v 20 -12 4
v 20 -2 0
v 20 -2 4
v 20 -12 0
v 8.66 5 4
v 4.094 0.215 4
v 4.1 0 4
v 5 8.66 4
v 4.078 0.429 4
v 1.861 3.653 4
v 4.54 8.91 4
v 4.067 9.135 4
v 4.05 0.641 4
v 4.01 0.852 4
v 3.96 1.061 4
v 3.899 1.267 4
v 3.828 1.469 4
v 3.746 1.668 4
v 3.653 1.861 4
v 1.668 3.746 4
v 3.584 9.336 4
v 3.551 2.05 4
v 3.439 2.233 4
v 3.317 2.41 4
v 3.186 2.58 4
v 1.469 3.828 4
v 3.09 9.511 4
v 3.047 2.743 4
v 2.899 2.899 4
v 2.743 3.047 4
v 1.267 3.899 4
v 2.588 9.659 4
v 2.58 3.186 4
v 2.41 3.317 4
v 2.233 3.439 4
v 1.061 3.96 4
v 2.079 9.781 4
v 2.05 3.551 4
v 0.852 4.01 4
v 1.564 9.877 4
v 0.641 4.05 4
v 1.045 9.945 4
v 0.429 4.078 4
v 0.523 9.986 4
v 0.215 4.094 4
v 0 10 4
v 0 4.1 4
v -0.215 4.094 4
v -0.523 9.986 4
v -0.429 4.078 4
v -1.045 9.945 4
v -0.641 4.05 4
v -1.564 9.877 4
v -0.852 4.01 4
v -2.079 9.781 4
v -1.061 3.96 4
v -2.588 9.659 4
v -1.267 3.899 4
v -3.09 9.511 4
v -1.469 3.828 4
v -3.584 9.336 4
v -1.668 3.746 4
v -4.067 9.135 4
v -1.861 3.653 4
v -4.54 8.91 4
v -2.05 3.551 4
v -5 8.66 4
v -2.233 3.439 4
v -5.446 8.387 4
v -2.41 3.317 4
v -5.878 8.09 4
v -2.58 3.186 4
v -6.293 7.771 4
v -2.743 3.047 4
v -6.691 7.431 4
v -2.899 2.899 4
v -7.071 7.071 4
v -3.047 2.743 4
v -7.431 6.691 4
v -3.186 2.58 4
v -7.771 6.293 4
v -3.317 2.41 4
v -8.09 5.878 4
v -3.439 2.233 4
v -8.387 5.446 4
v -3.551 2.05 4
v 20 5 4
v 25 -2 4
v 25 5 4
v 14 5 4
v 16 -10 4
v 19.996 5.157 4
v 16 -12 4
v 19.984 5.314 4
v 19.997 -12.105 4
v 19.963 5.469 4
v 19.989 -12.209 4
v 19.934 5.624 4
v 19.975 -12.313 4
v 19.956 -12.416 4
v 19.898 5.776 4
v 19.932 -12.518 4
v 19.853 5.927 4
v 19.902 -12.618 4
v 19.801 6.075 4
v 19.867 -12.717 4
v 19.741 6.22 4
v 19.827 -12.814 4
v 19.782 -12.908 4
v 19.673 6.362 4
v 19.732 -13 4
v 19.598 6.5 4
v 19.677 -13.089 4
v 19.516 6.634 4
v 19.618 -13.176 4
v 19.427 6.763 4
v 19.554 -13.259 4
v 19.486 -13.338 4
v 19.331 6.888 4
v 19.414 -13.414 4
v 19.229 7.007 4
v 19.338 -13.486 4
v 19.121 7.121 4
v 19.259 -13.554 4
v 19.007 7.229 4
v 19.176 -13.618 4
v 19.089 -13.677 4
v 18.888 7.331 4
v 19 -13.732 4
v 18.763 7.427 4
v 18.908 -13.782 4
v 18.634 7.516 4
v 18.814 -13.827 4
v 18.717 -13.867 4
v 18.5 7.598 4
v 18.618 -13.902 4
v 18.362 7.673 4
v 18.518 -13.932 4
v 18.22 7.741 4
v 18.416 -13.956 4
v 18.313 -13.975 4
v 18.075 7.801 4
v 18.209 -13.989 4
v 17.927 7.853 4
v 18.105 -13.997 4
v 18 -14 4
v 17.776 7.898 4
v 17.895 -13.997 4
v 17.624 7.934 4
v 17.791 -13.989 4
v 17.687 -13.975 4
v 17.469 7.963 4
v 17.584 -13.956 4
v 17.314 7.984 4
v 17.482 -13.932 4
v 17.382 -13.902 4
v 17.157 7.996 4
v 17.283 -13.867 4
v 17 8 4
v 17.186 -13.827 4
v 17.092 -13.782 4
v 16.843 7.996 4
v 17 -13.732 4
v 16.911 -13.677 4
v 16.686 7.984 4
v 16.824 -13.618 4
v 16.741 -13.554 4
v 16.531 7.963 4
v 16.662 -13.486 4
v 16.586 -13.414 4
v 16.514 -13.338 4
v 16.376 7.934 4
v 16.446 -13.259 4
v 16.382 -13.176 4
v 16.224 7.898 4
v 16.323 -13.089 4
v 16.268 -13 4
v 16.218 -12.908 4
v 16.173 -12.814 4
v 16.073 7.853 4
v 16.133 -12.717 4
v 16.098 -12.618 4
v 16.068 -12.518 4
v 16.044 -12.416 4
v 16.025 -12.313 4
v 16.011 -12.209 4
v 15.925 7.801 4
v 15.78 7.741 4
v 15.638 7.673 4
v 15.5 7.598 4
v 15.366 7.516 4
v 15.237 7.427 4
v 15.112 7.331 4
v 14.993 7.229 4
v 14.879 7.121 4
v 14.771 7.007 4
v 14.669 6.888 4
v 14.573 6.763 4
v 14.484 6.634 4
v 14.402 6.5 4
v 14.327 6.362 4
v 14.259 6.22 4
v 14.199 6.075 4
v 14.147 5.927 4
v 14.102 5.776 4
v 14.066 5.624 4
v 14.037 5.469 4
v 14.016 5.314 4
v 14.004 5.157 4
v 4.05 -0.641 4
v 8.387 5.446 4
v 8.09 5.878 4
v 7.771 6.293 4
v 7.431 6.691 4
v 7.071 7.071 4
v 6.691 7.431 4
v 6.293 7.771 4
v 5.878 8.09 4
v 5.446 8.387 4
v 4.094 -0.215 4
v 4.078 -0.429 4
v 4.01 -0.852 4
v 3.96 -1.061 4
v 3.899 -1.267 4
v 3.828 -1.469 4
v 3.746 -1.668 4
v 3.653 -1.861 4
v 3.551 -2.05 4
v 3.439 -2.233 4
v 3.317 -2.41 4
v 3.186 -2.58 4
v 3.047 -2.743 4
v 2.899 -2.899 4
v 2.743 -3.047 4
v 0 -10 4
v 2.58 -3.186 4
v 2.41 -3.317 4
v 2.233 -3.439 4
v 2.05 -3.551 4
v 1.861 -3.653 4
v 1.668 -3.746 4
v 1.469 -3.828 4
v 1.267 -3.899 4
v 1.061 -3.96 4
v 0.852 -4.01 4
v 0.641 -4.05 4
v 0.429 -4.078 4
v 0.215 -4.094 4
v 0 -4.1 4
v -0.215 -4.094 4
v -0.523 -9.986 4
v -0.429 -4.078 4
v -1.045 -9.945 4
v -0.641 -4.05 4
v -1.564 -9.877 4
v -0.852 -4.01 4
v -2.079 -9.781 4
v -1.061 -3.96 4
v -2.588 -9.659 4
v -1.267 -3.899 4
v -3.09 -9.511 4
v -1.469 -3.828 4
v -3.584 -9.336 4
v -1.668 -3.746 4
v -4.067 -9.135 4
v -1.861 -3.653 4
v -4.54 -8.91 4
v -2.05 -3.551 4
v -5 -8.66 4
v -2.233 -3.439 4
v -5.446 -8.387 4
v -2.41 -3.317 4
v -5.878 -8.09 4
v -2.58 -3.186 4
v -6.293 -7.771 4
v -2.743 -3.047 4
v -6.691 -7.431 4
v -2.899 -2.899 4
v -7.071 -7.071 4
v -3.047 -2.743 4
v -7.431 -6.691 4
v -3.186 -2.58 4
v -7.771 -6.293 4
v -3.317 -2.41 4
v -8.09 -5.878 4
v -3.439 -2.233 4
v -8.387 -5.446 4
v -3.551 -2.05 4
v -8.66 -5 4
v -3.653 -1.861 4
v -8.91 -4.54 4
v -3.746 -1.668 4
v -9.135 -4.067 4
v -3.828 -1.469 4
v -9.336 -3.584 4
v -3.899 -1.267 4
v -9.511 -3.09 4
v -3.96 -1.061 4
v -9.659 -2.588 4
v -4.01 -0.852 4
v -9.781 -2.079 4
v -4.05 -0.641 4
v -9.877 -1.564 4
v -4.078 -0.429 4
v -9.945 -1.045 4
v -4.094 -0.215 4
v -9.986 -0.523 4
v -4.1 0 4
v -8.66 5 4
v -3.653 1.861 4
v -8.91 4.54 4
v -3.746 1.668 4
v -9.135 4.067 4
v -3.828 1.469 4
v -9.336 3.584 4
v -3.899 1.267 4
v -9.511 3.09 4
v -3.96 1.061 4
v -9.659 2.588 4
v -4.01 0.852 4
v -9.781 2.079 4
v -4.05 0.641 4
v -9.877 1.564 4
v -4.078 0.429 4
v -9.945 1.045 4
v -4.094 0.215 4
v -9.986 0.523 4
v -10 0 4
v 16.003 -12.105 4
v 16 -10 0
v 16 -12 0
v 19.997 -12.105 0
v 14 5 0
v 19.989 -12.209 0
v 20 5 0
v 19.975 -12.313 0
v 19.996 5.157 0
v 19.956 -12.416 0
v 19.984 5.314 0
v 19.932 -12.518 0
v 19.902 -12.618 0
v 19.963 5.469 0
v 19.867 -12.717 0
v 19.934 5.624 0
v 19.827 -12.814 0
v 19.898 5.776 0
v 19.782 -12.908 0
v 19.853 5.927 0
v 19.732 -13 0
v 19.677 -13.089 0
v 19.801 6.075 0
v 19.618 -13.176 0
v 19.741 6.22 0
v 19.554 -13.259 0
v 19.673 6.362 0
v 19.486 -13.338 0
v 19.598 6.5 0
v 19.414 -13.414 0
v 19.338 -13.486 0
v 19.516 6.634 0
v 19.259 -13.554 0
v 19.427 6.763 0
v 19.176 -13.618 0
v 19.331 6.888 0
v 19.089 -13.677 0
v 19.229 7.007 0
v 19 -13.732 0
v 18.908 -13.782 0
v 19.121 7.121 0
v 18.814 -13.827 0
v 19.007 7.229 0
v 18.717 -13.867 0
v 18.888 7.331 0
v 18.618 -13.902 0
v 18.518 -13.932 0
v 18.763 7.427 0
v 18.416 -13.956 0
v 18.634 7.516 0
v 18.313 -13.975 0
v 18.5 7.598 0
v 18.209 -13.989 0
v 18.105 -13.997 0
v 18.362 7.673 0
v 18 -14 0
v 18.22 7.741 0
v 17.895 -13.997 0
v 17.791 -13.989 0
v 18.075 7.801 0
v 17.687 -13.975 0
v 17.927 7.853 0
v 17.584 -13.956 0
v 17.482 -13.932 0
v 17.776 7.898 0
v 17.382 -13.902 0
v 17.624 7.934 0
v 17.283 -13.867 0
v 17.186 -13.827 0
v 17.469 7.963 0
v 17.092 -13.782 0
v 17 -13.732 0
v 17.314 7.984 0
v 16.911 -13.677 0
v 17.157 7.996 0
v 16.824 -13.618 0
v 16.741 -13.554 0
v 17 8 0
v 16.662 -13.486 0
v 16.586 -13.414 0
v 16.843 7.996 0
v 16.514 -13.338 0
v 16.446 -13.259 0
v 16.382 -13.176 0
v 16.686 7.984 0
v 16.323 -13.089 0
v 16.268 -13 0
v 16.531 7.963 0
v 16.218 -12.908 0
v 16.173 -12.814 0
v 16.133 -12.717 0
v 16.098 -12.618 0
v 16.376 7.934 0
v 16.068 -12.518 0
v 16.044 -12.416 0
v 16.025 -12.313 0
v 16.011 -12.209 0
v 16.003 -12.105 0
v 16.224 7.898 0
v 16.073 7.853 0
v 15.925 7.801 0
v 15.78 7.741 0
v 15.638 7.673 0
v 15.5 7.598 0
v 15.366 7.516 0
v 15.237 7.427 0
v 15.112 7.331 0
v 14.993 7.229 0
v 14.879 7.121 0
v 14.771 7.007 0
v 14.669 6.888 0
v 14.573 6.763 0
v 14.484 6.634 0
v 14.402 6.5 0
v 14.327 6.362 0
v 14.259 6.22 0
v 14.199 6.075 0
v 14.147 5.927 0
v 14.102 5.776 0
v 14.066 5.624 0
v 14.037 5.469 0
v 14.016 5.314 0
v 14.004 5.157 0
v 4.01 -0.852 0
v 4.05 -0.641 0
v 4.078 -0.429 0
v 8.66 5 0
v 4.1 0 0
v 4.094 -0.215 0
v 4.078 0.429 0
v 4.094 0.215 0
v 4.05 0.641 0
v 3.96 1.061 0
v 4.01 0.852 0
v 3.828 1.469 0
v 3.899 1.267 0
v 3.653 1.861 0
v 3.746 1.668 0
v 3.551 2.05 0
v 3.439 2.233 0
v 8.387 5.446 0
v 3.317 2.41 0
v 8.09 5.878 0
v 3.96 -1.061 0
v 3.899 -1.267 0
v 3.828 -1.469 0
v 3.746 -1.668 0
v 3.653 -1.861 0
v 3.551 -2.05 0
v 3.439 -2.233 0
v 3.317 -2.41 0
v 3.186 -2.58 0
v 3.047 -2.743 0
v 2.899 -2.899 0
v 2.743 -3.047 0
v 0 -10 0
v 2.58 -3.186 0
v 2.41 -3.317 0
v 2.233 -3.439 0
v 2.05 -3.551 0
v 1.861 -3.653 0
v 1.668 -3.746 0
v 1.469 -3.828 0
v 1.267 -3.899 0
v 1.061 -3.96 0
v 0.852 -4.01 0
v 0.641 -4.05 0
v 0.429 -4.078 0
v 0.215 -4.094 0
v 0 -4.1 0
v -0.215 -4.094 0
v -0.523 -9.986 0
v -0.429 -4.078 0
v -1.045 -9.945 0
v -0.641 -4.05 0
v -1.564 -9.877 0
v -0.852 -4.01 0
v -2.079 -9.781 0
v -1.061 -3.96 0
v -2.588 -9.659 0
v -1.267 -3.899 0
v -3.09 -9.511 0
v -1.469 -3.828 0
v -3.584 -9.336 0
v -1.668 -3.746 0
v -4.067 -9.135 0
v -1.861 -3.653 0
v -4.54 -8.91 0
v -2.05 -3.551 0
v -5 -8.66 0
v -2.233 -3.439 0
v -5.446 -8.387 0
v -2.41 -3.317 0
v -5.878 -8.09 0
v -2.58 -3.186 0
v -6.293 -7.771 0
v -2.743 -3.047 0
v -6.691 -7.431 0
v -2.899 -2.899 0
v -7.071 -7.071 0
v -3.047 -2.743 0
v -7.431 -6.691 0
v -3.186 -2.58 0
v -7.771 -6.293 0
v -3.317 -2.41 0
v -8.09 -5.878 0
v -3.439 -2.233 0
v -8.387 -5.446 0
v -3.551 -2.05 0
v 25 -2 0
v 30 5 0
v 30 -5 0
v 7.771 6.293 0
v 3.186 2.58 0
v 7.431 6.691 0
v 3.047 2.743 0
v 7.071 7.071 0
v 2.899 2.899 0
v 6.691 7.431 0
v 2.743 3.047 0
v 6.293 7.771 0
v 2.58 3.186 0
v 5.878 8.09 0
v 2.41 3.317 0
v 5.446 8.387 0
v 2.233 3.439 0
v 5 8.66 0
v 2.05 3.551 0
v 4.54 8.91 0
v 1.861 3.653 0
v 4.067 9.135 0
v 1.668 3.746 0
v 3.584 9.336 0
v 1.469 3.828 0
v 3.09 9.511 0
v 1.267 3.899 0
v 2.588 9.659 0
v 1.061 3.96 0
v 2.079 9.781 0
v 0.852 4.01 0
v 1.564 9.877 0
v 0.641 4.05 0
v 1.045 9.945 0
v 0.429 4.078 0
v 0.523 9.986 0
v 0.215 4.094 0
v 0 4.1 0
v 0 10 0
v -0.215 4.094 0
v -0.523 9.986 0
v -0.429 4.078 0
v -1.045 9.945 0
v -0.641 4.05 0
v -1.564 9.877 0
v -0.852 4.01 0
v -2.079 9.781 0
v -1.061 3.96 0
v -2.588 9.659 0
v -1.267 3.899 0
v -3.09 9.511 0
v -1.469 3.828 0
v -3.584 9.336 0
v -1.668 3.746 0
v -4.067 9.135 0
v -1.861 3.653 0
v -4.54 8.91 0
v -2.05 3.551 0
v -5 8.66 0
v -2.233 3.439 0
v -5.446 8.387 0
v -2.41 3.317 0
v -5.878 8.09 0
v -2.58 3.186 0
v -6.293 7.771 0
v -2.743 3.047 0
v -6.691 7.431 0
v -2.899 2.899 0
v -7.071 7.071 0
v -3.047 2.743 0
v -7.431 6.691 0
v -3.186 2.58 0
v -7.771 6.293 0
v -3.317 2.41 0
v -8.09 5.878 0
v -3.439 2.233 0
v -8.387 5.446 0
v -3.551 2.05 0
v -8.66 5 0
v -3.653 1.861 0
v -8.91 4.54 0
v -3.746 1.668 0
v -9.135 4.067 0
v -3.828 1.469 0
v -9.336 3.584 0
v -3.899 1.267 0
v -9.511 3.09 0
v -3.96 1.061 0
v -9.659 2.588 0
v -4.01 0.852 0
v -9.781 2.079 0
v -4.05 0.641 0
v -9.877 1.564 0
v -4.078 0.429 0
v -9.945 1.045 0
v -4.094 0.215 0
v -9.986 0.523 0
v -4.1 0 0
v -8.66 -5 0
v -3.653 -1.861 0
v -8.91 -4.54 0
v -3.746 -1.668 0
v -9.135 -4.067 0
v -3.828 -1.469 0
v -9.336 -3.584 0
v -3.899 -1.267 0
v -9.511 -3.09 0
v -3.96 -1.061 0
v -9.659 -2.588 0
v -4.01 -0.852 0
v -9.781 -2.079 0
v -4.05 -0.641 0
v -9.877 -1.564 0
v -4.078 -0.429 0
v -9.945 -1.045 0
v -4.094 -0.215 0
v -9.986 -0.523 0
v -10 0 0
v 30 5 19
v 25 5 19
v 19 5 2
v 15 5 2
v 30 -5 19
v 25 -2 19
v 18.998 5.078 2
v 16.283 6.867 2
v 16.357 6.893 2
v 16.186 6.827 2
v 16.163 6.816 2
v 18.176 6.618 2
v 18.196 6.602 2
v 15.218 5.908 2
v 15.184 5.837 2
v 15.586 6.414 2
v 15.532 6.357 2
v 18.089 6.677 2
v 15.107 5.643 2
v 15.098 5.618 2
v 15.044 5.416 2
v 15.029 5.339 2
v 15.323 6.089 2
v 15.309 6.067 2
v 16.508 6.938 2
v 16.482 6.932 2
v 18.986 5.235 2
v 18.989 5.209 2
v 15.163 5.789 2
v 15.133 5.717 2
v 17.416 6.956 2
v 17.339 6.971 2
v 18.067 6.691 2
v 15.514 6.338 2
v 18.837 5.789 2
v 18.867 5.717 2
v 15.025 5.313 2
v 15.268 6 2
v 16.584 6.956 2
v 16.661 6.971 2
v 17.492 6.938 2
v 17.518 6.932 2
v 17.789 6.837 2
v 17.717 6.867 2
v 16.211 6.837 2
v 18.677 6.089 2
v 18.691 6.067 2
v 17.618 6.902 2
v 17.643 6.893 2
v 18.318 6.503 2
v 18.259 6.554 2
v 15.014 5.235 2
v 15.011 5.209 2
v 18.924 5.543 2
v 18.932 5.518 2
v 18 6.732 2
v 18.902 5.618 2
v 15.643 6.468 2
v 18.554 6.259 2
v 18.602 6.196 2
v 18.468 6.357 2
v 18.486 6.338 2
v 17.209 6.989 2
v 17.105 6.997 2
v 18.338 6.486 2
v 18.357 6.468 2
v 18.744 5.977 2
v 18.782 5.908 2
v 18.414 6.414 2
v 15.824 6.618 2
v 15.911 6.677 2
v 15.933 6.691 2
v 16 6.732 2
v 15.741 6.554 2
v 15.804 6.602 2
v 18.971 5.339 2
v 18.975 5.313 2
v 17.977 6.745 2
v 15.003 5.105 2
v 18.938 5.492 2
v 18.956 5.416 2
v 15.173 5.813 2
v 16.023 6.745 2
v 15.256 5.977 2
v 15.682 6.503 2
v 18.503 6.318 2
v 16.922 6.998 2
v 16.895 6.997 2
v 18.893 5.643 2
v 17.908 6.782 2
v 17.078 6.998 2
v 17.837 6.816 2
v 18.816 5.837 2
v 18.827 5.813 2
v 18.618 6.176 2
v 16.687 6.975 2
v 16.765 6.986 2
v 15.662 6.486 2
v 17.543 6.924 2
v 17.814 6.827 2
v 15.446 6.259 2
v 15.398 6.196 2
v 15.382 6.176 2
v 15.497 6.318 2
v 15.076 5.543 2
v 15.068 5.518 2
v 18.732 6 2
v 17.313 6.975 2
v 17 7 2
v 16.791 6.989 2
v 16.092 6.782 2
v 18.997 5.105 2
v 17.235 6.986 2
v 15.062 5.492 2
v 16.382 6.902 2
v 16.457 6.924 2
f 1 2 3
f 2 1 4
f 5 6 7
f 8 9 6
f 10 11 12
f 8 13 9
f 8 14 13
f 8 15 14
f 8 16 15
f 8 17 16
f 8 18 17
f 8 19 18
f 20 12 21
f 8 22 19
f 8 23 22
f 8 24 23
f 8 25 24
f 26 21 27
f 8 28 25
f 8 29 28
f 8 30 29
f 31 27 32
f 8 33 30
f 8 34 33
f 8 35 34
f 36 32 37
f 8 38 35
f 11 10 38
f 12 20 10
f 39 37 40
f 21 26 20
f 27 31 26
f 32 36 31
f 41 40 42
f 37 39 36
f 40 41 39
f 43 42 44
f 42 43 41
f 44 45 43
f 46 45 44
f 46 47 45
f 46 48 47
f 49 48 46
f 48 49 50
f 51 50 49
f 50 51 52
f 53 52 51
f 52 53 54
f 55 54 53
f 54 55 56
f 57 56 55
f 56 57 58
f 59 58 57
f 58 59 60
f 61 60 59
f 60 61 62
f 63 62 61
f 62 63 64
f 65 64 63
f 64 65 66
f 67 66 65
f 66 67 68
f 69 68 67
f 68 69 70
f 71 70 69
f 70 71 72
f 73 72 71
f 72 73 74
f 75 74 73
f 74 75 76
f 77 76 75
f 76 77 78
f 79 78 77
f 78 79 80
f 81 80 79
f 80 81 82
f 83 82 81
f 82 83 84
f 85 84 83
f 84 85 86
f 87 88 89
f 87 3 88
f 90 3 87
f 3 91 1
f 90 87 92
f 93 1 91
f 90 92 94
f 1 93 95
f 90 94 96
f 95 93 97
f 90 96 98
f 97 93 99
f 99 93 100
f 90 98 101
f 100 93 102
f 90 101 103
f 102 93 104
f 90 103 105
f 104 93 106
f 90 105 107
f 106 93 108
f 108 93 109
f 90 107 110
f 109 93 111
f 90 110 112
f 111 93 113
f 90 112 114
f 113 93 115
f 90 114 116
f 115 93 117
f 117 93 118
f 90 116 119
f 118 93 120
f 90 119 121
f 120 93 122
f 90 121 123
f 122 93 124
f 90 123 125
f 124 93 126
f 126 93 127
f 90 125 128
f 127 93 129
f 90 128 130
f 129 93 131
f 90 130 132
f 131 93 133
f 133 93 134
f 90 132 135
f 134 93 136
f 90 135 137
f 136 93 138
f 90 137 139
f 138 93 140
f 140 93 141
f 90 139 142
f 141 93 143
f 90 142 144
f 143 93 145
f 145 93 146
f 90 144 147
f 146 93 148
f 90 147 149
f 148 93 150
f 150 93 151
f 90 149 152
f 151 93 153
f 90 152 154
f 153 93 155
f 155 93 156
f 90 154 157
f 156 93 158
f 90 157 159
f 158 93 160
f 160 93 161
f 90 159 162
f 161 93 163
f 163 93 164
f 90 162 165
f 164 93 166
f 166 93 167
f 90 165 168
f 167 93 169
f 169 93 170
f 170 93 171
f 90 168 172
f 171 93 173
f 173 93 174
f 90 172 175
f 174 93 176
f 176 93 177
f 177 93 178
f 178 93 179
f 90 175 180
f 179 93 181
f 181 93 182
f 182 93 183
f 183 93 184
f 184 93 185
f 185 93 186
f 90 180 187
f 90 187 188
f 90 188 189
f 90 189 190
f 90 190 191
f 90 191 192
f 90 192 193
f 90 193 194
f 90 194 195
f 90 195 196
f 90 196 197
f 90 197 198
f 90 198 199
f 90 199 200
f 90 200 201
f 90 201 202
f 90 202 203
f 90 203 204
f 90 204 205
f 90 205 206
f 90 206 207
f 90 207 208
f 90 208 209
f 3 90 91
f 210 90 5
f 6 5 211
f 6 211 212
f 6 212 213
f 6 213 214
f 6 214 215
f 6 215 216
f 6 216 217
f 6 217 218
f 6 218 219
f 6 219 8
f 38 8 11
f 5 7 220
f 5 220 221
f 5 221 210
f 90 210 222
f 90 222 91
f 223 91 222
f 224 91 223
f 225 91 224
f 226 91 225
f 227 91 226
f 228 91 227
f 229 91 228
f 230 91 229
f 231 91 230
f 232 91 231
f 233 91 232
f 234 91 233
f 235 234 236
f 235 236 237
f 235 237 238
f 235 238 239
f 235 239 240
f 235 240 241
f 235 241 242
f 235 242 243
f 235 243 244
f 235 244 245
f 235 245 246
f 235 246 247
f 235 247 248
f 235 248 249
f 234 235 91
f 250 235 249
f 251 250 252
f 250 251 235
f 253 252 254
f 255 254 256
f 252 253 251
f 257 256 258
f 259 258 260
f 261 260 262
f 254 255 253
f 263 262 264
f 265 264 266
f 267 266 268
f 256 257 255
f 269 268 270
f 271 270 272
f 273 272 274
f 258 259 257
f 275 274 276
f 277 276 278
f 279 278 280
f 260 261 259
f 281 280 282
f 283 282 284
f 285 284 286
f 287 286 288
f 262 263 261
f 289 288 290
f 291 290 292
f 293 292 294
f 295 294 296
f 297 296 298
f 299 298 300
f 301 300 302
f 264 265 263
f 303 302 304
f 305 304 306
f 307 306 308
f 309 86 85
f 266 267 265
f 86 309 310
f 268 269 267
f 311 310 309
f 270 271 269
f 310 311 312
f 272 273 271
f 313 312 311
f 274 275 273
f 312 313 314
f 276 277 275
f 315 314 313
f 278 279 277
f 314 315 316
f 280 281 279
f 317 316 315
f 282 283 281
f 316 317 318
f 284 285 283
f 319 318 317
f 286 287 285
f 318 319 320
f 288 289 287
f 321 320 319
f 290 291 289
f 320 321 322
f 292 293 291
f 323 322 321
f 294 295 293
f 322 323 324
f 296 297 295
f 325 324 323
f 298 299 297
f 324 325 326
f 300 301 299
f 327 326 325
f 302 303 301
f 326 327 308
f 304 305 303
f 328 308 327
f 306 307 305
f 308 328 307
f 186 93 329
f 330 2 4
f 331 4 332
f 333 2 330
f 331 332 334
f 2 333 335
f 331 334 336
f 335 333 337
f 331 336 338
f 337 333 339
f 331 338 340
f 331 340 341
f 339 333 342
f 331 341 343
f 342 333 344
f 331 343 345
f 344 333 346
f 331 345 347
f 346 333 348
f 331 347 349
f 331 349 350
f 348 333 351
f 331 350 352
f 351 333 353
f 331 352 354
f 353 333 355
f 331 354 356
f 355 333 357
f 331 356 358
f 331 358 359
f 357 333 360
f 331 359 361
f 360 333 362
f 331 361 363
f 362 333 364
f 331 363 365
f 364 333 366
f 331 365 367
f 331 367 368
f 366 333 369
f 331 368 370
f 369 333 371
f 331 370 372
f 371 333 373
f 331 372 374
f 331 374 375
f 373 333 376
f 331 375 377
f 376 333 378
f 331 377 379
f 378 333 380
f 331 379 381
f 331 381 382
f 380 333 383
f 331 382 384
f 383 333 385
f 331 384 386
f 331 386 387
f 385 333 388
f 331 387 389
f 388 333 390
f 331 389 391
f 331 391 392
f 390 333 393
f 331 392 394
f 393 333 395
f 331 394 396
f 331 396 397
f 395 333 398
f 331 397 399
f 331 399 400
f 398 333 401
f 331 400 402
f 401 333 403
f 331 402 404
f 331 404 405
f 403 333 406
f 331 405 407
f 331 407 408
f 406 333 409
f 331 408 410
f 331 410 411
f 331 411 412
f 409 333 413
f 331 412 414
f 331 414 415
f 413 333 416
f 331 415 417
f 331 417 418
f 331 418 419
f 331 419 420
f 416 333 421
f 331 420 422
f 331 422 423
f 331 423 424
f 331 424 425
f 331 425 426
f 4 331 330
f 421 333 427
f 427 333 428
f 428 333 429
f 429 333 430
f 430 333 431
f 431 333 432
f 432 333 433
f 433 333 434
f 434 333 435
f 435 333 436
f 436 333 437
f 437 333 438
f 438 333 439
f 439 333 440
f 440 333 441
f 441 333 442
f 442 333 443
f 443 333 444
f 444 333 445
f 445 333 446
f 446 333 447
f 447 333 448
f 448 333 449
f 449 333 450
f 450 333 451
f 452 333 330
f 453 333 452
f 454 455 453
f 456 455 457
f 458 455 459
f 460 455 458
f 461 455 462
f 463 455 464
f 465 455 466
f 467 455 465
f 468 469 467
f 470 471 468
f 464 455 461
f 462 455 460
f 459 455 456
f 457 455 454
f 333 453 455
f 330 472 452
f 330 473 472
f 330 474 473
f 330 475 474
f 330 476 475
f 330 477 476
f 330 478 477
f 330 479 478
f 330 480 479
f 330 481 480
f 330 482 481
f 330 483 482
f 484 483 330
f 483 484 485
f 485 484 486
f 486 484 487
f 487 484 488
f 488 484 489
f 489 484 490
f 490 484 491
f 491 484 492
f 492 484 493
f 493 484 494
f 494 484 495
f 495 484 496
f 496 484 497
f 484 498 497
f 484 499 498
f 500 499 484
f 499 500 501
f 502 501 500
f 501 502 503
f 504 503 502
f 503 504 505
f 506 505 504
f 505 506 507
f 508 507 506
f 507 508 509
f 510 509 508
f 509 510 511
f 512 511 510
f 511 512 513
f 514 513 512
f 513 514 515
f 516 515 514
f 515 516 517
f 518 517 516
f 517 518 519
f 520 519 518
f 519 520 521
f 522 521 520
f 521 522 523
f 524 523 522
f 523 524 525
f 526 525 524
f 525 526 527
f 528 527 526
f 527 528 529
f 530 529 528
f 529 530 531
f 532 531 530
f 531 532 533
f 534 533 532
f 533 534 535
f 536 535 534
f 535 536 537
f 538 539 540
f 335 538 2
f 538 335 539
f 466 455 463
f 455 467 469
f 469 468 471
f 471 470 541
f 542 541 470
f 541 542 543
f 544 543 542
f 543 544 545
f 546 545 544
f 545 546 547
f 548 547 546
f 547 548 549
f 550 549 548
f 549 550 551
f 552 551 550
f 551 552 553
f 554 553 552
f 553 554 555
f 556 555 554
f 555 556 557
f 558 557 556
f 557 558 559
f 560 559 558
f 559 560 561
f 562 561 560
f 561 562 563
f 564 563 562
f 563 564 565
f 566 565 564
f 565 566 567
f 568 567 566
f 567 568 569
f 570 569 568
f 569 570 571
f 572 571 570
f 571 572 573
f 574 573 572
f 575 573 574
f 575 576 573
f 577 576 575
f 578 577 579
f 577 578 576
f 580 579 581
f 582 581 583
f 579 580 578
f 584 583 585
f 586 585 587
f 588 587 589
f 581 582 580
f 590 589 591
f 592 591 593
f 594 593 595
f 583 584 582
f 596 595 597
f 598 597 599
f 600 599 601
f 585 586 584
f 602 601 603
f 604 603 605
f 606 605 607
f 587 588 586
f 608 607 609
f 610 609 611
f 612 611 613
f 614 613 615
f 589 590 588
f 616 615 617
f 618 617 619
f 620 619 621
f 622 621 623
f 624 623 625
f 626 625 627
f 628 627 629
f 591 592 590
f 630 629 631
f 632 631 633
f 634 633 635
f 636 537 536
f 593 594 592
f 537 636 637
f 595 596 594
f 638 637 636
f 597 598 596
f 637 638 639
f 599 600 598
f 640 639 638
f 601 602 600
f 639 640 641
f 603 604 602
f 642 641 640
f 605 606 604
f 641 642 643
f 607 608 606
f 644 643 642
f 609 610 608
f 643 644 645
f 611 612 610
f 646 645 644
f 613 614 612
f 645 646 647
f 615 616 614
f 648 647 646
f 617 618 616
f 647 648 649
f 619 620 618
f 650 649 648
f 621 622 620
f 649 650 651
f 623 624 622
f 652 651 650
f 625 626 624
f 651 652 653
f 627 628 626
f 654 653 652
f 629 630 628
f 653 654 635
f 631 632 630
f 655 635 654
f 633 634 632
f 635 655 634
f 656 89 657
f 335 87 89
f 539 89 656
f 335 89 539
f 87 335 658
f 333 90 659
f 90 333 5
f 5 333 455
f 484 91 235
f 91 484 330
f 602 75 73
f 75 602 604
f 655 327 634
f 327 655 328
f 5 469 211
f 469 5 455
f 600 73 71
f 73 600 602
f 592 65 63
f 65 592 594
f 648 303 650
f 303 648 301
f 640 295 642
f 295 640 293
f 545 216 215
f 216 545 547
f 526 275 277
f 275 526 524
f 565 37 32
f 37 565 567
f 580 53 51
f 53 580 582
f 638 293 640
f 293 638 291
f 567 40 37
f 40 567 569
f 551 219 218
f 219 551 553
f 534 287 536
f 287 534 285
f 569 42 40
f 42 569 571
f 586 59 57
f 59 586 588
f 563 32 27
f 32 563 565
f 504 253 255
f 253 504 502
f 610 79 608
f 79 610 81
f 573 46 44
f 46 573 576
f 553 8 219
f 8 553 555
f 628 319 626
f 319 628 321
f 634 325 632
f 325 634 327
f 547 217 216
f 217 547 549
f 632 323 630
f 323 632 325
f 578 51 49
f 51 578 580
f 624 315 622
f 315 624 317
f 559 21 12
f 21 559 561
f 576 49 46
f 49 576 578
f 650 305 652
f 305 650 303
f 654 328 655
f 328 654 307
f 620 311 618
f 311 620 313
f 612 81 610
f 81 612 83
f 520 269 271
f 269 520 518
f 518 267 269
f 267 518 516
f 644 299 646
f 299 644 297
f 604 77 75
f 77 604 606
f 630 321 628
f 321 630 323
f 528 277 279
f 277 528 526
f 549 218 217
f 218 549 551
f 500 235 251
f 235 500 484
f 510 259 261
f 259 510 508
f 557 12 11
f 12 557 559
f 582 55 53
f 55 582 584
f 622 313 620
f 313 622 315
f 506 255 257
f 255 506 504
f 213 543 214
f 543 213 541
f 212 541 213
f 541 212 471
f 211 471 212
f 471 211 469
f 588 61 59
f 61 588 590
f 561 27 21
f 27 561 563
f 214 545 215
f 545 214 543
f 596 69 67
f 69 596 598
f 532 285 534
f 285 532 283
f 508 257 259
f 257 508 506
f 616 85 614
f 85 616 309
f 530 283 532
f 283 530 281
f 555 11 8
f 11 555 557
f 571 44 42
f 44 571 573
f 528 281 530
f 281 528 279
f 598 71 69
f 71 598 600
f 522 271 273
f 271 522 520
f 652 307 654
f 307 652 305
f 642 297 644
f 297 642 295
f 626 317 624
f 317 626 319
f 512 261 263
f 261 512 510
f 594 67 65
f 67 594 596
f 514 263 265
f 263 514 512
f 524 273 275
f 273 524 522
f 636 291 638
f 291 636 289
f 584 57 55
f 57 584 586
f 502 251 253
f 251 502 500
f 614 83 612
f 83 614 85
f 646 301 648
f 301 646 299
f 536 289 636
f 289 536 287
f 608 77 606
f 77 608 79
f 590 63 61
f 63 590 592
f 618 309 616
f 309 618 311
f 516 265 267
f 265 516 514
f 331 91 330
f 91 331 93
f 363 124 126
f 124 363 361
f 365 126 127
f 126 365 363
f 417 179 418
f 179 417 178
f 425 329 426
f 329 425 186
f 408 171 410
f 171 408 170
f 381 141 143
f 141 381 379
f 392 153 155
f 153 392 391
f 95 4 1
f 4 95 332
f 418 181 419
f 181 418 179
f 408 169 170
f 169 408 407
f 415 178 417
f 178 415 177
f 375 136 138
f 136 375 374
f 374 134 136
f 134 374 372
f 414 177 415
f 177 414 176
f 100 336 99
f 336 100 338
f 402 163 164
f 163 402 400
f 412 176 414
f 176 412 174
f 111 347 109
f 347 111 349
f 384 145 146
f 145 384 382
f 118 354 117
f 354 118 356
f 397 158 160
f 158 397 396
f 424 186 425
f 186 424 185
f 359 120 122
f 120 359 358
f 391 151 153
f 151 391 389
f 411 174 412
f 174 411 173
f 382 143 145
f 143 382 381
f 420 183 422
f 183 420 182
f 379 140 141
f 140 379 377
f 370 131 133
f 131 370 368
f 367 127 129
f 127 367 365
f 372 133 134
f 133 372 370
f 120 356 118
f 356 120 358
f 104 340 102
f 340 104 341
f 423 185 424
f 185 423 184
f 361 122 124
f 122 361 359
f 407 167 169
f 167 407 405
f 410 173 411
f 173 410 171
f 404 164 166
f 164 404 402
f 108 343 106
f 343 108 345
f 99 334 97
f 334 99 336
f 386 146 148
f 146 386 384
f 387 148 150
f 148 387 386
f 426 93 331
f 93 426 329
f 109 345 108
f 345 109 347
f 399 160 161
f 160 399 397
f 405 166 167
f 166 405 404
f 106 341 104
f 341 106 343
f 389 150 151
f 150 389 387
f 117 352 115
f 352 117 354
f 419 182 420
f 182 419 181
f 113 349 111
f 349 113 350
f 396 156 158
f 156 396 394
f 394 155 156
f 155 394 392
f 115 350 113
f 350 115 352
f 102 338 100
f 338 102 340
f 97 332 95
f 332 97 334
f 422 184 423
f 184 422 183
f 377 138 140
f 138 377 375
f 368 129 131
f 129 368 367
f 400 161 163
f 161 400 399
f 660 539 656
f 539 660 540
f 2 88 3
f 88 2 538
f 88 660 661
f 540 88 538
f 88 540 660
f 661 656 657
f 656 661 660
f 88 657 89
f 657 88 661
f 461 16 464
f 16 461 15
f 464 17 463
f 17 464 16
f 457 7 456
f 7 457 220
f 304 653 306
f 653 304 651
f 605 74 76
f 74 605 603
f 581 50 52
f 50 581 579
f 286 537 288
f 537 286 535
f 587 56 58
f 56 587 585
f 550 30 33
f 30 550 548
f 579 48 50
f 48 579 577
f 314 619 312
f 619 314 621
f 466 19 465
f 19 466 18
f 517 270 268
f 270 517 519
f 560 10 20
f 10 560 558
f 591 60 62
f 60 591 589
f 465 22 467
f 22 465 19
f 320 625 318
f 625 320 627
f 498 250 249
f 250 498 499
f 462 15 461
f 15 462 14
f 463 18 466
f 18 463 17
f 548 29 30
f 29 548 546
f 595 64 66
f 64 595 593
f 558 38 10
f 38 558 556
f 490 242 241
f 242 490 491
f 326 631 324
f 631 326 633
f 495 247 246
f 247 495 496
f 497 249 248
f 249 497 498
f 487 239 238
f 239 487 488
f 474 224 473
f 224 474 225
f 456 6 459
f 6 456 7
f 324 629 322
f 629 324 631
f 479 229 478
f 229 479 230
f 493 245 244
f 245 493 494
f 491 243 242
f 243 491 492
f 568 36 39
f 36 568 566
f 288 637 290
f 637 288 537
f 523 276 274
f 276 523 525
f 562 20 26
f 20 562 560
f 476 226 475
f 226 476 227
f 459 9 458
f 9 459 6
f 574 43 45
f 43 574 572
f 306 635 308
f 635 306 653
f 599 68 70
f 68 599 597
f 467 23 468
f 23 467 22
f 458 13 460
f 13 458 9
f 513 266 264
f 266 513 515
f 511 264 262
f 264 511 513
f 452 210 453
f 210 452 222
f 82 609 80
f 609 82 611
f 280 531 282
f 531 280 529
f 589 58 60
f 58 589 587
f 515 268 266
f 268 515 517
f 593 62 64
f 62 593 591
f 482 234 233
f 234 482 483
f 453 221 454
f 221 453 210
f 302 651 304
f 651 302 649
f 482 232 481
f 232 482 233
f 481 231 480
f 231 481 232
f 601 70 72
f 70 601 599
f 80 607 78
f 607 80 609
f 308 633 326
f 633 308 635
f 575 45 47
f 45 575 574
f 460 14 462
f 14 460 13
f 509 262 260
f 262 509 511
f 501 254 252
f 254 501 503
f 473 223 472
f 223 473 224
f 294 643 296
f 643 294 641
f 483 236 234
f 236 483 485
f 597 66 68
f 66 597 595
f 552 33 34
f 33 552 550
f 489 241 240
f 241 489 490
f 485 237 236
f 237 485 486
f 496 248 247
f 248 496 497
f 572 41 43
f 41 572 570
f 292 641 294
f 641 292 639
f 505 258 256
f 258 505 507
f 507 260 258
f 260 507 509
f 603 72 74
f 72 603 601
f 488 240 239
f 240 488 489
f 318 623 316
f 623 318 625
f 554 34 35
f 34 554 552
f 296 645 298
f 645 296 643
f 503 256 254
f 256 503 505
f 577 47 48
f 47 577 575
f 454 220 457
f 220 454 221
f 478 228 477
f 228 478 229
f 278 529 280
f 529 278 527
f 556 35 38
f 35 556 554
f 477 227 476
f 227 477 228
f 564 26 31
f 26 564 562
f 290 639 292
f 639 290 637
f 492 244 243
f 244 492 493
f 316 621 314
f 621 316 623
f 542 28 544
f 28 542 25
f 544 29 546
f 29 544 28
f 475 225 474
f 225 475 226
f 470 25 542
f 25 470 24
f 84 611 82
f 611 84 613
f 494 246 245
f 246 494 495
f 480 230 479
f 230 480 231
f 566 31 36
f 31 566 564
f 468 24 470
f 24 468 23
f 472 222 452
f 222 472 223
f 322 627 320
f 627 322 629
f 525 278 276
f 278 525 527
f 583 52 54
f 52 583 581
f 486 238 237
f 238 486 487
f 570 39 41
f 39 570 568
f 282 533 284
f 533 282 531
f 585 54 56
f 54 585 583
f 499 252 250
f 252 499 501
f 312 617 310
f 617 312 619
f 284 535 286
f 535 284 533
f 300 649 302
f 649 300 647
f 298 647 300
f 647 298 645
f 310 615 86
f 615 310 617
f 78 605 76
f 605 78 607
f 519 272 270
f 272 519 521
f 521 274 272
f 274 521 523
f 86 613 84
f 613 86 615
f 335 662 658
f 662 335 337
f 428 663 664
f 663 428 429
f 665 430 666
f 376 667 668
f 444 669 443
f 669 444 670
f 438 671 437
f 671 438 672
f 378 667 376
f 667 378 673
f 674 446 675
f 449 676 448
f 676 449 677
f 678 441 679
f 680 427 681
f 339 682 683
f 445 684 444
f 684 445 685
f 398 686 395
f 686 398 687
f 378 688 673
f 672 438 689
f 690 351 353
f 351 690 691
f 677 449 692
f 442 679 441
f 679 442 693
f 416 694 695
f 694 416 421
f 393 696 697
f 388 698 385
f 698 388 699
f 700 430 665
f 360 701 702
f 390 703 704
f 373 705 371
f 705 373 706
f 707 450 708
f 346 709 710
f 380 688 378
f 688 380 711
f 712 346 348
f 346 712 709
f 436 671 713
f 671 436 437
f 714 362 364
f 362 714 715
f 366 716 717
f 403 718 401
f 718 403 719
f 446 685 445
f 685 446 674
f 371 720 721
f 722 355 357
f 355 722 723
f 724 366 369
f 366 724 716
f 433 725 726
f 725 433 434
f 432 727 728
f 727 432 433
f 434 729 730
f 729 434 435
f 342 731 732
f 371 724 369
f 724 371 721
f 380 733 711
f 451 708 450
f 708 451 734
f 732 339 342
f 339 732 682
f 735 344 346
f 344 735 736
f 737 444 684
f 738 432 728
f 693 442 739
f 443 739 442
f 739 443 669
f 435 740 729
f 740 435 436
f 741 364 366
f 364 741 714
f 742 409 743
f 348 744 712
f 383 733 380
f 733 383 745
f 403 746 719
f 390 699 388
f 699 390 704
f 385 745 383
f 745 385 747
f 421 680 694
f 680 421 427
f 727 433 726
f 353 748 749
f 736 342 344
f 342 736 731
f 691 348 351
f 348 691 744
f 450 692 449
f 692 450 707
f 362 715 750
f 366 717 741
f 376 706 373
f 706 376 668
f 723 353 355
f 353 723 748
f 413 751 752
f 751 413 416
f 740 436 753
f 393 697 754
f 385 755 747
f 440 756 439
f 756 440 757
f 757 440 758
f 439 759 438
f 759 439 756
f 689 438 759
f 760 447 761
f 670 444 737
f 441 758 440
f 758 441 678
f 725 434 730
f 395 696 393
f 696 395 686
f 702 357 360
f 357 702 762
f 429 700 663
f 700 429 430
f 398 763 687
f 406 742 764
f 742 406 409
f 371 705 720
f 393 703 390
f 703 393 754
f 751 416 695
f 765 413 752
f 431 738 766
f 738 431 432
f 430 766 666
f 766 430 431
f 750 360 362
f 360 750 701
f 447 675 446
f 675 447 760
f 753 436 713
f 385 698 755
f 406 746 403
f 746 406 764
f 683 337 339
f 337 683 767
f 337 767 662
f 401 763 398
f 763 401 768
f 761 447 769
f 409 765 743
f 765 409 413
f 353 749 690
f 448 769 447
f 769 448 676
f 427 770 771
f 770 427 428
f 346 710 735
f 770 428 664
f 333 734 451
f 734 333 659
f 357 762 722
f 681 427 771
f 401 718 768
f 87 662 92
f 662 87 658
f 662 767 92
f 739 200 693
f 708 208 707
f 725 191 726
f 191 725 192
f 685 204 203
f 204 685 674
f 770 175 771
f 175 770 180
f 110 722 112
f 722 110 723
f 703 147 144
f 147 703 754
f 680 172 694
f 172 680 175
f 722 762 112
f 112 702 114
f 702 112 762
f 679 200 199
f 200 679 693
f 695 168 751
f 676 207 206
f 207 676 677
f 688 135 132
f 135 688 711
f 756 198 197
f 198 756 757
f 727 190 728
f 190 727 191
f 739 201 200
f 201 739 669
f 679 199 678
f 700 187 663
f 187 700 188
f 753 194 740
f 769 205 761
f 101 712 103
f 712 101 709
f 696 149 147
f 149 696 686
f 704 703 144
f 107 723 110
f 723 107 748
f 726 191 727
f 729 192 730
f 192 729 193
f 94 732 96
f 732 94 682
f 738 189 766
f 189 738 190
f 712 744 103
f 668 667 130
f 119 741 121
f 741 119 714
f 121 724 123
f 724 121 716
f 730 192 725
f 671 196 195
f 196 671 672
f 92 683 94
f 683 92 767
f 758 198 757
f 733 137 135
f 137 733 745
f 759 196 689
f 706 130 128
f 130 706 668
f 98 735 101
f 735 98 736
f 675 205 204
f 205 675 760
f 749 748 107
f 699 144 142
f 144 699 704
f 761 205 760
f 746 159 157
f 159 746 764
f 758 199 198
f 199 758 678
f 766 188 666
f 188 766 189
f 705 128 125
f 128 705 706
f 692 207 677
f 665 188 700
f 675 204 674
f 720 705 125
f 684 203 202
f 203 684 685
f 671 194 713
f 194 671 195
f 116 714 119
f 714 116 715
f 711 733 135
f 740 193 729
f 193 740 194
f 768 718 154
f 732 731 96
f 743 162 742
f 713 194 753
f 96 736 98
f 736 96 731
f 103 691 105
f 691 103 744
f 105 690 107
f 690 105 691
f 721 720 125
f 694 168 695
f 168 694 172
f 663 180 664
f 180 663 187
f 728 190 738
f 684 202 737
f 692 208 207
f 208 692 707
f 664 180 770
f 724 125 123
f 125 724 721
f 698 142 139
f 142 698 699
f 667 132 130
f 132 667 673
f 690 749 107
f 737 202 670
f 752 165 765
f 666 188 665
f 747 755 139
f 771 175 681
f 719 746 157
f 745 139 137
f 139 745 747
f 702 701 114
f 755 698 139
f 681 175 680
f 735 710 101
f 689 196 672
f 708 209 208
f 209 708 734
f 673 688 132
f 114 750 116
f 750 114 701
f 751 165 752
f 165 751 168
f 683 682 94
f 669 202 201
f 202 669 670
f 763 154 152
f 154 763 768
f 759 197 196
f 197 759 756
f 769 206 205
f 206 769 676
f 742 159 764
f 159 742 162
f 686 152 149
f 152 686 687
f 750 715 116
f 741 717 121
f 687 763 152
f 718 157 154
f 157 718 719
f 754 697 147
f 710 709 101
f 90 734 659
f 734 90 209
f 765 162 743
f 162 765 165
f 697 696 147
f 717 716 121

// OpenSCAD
// some variables
$fn = 120; // we are using 60 fragments for cylinders and similar objects

vTolerance_length = 1;
vTolerance_width = 0.2;
vTolerance_height = 0.2;
vTolerance_diameter = 0.2;

vLeverBasePlate_length = 20;
vLeverBasePlate_width = 15;
vLeverBasePlate_height = 4;
vLeverBasePlate_offsetX = 0;
vLeverBasePlate_offsetY = -10;
vLeverBasePlate_offsetZ = 0;

vLockingBolt_length = 4;
vLockingBolt_width = 2;
vLockingBolt_radius = vLockingBolt_width;
vLockingBolt_height = vLeverBasePlate_height;
vLockingBolt_offsetX = vLeverBasePlate_length-vLockingBolt_length;
vLockingBolt_offsetY = vLeverBasePlate_offsetY-vLockingBolt_width;
vLockingBolt_offsetZ = 0;

vPullingLever_length = 30;
vPullingLever_width = 7;
vPullingLever_height = vLeverBasePlate_height;
vPullingLever_offsetX = 0;
vPullingLever_offsetY = -2;
vPullingLever_offsetZ = 0;

vPullingGrip_length = 5;
vPullingGrip_width = vPullingLever_width;
vPullingGrip_height = vLeverBasePlate_height+15;
vPullingGrip_offsetX = vPullingLever_length-vPullingGrip_length;
vPullingGrip_offsetY = vPullingLever_offsetY;
vPullingGrip_offsetZ = 0;
vPullingGripWedge_length = vPullingGrip_length;
vPullingGripWedge_width = -3;
vPullingGripWedge_height = vPullingGrip_height;
vPullingGripWedge_offsetX = vPullingLever_length;
vPullingGripWedge_offsetY = vPullingLever_offsetY;
vPullingGripWedge_offsetZ = 0;

vSpringLever_d1 = 6;
vSpringLever_d2 = 2;
vSpringLever_h = vLeverBasePlate_height;
vSpringLever_offsetX = vLeverBasePlate_length-(vSpringLever_d1/2);
vSpringLever_offsetY = 5;
vSpringLever_offsetZ = 0;


vBoltHole_d = 8+vTolerance_diameter;
vBoltHole_h = vLeverBasePlate_height;
vBoltHole_offsetX = 0;
vBoltHole_offsetY = 0;
vBoltHole_offsetZ = 0;


module roof(l, w, h){
    polyhedron(
        points=[
            [0,0,0],
            [l,0,0],
            [l,w,0],
            [0,w,0],
            [l/2,0,h],
            [l/2,w,h]
            ],
        faces=[
            [0,1,2,3],
            [0,4,1],
            [1,4,5,2],
            [2,5,3],
            [3,5,4,0]
            ]
            );
    };

//roof(20, 10, 15);

module wedge(l, w, h) {
    polyhedron(
            points=[
                [0,0,0],
                [l,0,0],
                [0,w,0],
                [0,0,h],
                [l,0,h],
                [0,w,h]
            ],
            faces=[
                [0,1,2],
                [0,3,4,1],
                [1,4,5,2],
                [2,5,3,0],
                [3,5,4]
            ]
    );
   };    
//wedge(20, 30, 40);

module tube(d1, d2, h) {
    difference() {
        cylinder(d=d1, h=h);
        cylinder(d=d2, h=h);
        }
    };
 
 
    





// temporary objects

translate([vSpringLever_offsetX, vSpringLever_offsetY, vSpringLever_offsetZ])
    cylinder(d1=vSpringLever_d1, d2=vSpringLever_d2, h=vSpringLever_h);
translate([vSpringLever_offsetX, vSpringLever_offsetY, vSpringLever_offsetZ])
    cylinder(d1=vSpringLever_d2, d2=vSpringLever_d1, h=vSpringLever_h);

difference(){
    union(){
            translate([vLeverBasePlate_offsetX, vLeverBasePlate_offsetY, vLeverBasePlate_offsetZ])
                cube([vLeverBasePlate_length, vLeverBasePlate_width, vLeverBasePlate_height]);
            
            // rounded back
            translate([vLeverBasePlate_offsetX, 0, vLeverBasePlate_offsetZ])
                cylinder(h=vLeverBasePlate_height, d=vLeverBasePlate_length);    
            
            // locking bolt
            translate([vLockingBolt_offsetX, vLockingBolt_offsetY, vLockingBolt_offsetZ])
                cube([vLockingBolt_length, vLockingBolt_width, vLockingBolt_height]);
            translate([vLockingBolt_offsetX+vLockingBolt_radius, vLockingBolt_offsetY, vLockingBolt_offsetZ])
                cylinder(h=vLockingBolt_height, r=vLockingBolt_width);
            
            // pulling lever
            translate([vPullingLever_offsetX, vPullingLever_offsetY, vPullingLever_offsetZ])
                cube([vPullingLever_length, vPullingLever_width, vPullingLever_height]);
        
            translate([vPullingGripWedge_offsetX, vPullingGripWedge_offsetY, vPullingGripWedge_offsetZ])
                rotate([0, 0, 90])
                    wedge(vPullingGripWedge_width, vPullingGripWedge_length, vPullingGripWedge_height);

            translate([vPullingGrip_offsetX, vPullingGrip_offsetY, vPullingGrip_offsetZ])
                cube([vPullingGrip_length, vPullingGrip_width, vPullingGrip_height]);
                
            
            
        };
    translate([vBoltHole_offsetX, vBoltHole_offsetY, vBoltHole_offsetZ])
                cylinder(h=vBoltHole_h, d=vBoltHole_d); 

};
